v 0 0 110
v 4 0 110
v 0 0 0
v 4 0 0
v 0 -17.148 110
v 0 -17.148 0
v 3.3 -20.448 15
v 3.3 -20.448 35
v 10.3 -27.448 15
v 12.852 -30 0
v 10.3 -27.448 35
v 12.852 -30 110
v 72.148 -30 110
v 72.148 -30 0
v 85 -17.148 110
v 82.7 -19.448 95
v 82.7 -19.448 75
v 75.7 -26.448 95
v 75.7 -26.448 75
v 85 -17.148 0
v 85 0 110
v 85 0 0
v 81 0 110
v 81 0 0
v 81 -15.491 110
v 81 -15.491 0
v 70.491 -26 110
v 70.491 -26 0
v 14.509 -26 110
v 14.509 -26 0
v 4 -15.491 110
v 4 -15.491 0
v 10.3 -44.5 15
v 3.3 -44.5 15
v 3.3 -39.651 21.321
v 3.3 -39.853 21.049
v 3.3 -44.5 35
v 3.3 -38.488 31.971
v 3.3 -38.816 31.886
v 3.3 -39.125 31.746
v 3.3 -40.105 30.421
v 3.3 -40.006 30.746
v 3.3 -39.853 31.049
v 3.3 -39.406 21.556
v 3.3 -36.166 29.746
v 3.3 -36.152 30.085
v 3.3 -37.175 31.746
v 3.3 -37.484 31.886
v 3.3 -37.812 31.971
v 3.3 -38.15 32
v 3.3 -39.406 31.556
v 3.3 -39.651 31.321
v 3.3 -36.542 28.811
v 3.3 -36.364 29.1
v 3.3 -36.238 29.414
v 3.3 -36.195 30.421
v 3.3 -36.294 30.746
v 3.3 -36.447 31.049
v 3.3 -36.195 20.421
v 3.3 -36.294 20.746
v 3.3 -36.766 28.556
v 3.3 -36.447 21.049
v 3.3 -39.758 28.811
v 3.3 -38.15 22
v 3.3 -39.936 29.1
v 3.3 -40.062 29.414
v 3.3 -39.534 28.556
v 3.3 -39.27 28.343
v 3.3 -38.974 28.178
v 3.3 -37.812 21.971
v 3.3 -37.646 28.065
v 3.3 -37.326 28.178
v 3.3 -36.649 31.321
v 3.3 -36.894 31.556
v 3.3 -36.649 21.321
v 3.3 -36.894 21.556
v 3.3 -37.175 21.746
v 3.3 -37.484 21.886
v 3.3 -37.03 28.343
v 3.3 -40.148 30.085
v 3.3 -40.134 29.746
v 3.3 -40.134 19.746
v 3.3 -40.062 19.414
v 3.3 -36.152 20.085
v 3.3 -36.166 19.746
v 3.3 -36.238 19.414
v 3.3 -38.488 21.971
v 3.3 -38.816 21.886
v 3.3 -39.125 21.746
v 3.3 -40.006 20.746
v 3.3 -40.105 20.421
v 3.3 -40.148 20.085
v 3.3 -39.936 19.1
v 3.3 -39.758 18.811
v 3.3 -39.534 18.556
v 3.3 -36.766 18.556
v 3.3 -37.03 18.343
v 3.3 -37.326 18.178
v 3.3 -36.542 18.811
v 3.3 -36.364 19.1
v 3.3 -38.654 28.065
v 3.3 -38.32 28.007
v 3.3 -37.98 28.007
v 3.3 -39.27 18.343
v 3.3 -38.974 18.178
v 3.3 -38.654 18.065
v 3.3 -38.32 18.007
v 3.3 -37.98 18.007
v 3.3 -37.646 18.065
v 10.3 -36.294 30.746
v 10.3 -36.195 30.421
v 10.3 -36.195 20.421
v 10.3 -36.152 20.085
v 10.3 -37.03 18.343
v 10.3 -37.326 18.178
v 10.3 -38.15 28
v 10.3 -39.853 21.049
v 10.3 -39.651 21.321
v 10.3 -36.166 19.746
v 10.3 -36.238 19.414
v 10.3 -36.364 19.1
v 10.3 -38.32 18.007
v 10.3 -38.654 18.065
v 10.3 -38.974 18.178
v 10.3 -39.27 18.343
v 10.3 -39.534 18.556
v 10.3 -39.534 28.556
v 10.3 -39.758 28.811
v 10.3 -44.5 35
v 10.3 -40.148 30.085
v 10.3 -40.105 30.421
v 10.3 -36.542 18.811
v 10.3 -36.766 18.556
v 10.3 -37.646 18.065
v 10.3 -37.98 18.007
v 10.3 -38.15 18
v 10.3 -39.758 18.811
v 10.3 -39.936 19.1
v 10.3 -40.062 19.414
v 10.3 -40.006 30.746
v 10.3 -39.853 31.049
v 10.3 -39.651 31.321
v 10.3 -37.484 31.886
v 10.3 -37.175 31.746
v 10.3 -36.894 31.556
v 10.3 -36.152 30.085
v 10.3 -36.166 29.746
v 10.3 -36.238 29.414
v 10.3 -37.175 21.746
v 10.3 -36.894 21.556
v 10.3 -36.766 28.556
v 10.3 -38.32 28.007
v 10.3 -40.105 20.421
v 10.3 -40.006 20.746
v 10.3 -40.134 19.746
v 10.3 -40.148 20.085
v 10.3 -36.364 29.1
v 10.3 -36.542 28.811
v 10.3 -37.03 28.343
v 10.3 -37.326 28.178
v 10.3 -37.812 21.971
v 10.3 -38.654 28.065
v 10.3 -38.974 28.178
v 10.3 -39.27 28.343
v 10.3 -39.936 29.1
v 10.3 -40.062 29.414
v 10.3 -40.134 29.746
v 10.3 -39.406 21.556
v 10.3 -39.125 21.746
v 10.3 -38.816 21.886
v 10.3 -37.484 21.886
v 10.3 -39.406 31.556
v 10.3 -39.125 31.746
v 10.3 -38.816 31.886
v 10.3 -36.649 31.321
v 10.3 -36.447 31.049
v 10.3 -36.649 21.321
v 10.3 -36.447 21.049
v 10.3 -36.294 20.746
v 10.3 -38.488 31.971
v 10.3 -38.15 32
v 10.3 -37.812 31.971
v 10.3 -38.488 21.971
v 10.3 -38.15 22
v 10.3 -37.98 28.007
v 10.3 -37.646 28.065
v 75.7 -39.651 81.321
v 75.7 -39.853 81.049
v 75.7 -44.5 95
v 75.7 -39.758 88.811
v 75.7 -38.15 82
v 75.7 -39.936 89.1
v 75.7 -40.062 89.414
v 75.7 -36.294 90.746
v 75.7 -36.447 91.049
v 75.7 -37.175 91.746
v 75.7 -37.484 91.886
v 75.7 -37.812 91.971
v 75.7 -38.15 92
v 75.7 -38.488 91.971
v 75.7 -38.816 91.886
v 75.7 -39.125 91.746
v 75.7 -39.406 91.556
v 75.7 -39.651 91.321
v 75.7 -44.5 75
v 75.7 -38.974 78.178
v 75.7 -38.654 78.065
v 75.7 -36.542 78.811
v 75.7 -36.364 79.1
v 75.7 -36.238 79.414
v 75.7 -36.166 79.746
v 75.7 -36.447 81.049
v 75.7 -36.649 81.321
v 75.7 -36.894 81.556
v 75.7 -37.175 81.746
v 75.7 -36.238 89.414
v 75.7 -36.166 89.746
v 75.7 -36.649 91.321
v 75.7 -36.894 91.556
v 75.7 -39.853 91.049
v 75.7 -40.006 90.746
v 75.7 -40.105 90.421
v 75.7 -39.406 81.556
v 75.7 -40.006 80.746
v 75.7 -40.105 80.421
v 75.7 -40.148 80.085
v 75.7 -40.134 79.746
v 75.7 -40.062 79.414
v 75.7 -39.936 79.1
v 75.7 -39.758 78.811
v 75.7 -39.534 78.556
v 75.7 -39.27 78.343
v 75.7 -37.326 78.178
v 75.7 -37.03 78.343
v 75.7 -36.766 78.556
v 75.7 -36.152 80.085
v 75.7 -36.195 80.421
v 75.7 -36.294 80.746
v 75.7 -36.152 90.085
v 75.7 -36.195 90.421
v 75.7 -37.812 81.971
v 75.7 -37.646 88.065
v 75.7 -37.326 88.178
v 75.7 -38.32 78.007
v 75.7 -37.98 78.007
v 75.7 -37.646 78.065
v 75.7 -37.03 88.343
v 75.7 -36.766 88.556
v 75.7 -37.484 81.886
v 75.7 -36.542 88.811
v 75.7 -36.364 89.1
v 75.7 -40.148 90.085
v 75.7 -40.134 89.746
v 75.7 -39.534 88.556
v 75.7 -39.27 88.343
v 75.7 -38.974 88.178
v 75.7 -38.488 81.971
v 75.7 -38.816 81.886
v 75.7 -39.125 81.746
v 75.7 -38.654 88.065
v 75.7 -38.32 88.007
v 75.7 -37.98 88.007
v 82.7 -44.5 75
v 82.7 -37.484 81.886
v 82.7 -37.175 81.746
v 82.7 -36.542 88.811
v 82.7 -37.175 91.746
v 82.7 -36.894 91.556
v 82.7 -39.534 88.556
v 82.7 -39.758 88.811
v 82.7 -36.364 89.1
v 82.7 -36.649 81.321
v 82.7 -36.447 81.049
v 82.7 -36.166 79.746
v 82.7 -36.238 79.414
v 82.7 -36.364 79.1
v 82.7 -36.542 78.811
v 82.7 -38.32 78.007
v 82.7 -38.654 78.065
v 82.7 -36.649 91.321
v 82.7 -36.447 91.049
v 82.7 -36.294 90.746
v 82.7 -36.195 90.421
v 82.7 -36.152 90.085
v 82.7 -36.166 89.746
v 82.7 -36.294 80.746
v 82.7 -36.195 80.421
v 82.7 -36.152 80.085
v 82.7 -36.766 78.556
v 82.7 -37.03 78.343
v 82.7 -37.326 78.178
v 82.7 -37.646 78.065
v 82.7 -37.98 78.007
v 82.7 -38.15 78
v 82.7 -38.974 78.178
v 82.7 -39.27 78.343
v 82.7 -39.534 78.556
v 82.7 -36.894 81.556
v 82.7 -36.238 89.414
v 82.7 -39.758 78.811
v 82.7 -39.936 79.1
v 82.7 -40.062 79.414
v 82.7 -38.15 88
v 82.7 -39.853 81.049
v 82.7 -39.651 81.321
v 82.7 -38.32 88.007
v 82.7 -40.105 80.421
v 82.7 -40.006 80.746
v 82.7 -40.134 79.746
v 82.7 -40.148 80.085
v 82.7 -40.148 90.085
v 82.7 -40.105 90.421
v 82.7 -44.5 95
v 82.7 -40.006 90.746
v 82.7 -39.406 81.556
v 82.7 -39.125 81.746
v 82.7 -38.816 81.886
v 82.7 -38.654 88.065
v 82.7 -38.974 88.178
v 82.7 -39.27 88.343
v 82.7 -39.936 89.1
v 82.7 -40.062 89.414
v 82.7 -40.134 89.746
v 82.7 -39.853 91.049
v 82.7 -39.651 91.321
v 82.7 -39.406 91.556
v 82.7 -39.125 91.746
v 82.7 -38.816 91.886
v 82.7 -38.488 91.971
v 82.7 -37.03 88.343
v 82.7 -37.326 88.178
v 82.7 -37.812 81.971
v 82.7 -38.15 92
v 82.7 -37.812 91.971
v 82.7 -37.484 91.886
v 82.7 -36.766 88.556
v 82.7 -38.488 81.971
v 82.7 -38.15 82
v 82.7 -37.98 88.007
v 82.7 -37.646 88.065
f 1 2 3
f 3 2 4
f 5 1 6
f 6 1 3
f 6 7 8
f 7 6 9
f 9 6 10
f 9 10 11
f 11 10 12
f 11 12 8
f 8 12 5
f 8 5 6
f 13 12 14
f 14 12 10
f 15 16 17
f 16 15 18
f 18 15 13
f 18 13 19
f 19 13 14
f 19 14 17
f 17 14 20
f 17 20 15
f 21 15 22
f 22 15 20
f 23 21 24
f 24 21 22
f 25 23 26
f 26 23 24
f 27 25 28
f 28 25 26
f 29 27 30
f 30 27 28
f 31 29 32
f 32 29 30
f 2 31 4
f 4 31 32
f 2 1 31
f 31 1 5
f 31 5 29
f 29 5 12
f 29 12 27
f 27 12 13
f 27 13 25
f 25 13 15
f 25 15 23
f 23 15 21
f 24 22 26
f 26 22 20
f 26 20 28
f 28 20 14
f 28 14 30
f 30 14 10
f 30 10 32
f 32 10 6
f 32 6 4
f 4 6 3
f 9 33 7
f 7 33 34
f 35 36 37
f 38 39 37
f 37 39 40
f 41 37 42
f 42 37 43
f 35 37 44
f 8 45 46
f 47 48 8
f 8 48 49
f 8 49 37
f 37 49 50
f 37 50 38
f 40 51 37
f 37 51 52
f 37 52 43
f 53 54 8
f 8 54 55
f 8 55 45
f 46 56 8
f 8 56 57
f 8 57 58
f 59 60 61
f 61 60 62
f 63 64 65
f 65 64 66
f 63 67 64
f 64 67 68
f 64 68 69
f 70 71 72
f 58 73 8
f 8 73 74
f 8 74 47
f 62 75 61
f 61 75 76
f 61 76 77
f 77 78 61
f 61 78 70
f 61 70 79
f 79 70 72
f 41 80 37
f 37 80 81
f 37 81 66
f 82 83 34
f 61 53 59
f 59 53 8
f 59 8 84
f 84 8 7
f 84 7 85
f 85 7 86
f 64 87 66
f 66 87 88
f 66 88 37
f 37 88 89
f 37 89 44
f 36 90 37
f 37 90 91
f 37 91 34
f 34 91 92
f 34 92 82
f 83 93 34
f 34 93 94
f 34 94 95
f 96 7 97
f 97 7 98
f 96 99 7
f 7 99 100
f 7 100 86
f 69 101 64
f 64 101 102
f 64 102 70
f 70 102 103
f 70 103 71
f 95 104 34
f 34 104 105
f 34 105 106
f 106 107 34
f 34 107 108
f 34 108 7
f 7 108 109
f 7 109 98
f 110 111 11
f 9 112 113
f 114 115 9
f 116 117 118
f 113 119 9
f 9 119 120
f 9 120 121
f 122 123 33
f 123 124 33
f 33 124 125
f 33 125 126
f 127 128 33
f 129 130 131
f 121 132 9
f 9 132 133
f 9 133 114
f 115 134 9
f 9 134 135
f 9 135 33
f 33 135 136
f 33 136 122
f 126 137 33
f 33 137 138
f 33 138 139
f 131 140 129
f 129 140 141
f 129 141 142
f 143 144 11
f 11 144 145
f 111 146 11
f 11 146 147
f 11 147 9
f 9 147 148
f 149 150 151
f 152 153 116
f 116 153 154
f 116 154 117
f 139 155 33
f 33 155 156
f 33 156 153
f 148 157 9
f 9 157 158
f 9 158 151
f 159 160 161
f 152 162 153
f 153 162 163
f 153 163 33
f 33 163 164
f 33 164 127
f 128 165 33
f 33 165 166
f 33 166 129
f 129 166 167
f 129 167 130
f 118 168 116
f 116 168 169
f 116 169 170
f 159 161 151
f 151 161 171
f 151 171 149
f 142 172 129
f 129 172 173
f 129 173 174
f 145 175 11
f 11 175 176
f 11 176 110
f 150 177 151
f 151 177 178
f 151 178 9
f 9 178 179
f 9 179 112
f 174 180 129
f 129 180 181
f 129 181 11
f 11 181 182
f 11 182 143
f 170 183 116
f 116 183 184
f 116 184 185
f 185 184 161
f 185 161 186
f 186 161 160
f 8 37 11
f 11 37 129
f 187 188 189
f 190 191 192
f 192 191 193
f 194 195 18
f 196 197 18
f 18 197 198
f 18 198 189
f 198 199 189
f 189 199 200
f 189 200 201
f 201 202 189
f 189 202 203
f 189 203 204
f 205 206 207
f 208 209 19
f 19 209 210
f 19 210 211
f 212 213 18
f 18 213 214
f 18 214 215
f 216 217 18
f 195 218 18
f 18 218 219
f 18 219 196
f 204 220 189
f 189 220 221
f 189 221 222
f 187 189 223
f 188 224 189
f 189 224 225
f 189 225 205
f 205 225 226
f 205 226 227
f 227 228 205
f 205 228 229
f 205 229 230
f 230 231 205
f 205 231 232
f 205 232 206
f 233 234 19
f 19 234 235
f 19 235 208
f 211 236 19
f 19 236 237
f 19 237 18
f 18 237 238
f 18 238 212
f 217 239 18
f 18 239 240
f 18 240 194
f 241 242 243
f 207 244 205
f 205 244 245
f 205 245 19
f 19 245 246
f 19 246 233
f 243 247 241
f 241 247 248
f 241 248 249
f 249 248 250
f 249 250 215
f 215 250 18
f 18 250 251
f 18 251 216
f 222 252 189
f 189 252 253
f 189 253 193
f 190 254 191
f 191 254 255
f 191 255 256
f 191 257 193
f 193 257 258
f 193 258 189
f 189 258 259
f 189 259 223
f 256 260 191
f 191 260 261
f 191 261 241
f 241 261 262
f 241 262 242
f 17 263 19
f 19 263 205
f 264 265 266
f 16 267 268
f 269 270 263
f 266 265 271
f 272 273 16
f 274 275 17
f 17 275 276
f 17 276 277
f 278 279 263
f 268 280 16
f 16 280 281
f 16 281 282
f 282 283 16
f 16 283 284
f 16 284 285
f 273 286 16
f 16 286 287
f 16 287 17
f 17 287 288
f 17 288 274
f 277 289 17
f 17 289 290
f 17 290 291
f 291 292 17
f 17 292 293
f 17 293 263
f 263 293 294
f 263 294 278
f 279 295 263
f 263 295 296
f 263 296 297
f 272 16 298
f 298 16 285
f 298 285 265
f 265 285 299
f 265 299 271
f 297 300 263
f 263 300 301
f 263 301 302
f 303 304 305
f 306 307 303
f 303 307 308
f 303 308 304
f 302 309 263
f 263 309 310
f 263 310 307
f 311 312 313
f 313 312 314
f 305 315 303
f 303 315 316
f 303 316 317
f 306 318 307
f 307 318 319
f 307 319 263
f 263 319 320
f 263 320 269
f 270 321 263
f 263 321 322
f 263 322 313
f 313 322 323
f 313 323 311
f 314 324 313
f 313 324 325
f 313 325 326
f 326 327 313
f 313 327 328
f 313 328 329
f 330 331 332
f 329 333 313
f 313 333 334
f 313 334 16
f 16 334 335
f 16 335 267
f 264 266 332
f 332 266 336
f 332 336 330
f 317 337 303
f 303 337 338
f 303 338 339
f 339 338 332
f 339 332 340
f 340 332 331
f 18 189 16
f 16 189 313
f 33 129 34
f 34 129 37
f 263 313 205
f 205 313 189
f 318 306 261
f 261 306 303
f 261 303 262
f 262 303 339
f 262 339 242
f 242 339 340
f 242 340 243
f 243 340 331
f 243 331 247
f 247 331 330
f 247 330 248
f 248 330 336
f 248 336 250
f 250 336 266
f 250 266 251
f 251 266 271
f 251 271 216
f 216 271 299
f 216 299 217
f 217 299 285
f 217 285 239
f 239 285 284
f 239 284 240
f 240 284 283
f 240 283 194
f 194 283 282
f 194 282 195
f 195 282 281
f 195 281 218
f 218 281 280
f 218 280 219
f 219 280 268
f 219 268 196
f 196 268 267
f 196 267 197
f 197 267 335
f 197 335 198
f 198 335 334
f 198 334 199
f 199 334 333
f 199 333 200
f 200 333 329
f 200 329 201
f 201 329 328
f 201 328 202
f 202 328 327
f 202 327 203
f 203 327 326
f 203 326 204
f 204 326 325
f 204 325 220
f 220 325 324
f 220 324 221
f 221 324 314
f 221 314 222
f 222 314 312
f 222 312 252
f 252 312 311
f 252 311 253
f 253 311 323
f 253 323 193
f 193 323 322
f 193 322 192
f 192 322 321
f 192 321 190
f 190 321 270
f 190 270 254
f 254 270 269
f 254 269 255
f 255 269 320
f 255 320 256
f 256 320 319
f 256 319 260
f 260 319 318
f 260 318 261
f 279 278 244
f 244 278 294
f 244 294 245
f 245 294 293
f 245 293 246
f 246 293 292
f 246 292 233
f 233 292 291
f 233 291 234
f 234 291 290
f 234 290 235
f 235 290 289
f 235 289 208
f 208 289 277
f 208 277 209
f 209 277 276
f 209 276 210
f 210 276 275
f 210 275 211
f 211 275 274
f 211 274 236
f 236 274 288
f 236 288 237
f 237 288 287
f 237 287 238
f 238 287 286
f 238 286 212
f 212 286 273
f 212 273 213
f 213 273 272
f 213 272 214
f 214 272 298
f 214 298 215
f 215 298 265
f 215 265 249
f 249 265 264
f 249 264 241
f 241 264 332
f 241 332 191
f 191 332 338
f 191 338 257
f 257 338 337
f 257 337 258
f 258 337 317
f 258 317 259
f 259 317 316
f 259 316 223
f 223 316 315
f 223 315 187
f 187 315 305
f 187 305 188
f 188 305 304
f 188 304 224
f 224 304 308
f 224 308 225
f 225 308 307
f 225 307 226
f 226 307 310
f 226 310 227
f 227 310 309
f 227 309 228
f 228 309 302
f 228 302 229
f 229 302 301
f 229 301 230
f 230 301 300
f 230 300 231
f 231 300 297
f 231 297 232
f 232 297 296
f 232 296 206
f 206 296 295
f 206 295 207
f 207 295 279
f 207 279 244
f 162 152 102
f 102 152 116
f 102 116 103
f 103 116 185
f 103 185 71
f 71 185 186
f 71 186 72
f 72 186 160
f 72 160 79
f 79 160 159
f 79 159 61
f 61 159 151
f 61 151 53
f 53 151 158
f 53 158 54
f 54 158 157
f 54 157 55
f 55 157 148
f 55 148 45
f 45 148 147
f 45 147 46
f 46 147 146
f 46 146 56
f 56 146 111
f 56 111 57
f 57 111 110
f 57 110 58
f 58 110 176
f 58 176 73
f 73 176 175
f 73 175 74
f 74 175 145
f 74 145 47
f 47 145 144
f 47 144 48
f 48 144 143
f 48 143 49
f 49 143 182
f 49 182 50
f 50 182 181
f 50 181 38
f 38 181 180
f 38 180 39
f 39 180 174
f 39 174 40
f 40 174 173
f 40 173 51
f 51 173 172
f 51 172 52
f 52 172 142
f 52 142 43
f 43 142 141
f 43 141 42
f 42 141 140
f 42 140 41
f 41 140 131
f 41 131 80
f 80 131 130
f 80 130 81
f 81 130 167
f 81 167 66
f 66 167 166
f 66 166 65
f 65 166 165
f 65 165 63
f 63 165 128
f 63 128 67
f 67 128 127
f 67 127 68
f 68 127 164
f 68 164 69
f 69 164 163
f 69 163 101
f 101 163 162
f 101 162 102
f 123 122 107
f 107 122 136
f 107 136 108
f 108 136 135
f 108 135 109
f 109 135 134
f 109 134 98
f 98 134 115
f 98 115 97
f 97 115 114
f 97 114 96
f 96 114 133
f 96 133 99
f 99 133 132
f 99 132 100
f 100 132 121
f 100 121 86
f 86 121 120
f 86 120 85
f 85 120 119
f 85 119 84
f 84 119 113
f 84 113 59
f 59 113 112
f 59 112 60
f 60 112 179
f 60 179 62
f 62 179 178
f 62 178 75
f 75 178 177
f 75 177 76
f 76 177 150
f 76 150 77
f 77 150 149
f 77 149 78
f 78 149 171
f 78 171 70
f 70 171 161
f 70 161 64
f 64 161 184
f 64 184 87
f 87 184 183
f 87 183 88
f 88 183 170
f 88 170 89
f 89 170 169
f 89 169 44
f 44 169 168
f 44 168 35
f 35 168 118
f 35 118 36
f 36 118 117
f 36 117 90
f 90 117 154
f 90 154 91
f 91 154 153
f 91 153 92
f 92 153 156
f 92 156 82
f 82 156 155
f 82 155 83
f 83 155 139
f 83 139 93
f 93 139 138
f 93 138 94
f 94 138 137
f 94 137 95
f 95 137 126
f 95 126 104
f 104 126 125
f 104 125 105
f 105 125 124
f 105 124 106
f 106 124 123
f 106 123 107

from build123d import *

# Parameters (mm, degrees)
BOSS_EXTRUDE1_DEPTH     = 110
BOSS_EXTRUDE2_REACH     = 144.215
SKETCH2_W               = 7
SKETCH2_H               = 20
SKETCH4_W               = 7
SKETCH4_H               = 20
BOSS_EXTRUDE3_DEPTH     = 14.5
CUT_EXTRUDE1_DEPTH      = 145.066443005
CUT_EXTRUDE1_DEPTH_BACK = 145.066443005
SKETCH5_R               = 2


with BuildPart() as part:
    # Sketch1 → Boss-Extrude1 (new body)
    with BuildSketch(Plane.XY):
        Polygon((0, 0), (0, -17.14826885), (12.85173115, -30), (72.14826885, -30), (85, -17.14826885), (85, 0), (81, 0), (81, -15.4914146), (70.4914146, -26), (14.5085854, -26), (4, -15.4914146), (4, 0), align=None)
    extrude(amount=BOSS_EXTRUDE1_DEPTH)

    # Sketch2 → Boss-Extrude2 (add, up to next)
    with BuildSketch(Plane.XZ.offset(30), mode=Mode.PRIVATE) as boss_extrude2_sk1:
        with Locations((6.8, 25)):
            Rectangle(SKETCH2_W, SKETCH2_H)
    boss_extrude2_tool1 = extrude(boss_extrude2_sk1.sketch, amount=-BOSS_EXTRUDE2_REACH, mode=Mode.PRIVATE) - part.part
    # Sketch2 → Boss-Extrude2 (add, up to next)
    with BuildSketch(Plane.XZ.offset(30), mode=Mode.PRIVATE) as boss_extrude2_sk2:
        with Locations((79.2, 85)):
            Rectangle(SKETCH2_W, SKETCH2_H)
    boss_extrude2_tool2 = extrude(boss_extrude2_sk2.sketch, amount=-BOSS_EXTRUDE2_REACH, mode=Mode.PRIVATE) - part.part
    add(boss_extrude2_tool1.solids().sort_by_distance((6.8, -30, 25))[0])
    add(boss_extrude2_tool2.solids().sort_by_distance((79.2, -30, 85))[0])

    # Sketch4 → Boss-Extrude3 (add)
    with BuildSketch(Plane.XZ.offset(30)):
        with Locations((6.8, 25)):
            Rectangle(SKETCH4_W, SKETCH4_H)
        with Locations((79.2, 85)):
            Rectangle(SKETCH4_W, SKETCH4_H)
    extrude(amount=BOSS_EXTRUDE3_DEPTH)

    # Sketch5 → Cut-Extrude1 (cut, two sides: drawn at the far end of the back side and taken through both)
    with BuildSketch(Plane.ZY.offset(-3.3).offset(-CUT_EXTRUDE1_DEPTH_BACK)):
        with Locations((20, -38.15)):
            Circle(SKETCH5_R)
        with Locations((30, -38.15)):
            Circle(SKETCH5_R)
        with Locations((80, -38.15)):
            Circle(SKETCH5_R)
        with Locations((90, -38.15)):
            Circle(SKETCH5_R)
    extrude(amount=CUT_EXTRUDE1_DEPTH + CUT_EXTRUDE1_DEPTH_BACK, mode=Mode.SUBTRACT)


solid = part.part
